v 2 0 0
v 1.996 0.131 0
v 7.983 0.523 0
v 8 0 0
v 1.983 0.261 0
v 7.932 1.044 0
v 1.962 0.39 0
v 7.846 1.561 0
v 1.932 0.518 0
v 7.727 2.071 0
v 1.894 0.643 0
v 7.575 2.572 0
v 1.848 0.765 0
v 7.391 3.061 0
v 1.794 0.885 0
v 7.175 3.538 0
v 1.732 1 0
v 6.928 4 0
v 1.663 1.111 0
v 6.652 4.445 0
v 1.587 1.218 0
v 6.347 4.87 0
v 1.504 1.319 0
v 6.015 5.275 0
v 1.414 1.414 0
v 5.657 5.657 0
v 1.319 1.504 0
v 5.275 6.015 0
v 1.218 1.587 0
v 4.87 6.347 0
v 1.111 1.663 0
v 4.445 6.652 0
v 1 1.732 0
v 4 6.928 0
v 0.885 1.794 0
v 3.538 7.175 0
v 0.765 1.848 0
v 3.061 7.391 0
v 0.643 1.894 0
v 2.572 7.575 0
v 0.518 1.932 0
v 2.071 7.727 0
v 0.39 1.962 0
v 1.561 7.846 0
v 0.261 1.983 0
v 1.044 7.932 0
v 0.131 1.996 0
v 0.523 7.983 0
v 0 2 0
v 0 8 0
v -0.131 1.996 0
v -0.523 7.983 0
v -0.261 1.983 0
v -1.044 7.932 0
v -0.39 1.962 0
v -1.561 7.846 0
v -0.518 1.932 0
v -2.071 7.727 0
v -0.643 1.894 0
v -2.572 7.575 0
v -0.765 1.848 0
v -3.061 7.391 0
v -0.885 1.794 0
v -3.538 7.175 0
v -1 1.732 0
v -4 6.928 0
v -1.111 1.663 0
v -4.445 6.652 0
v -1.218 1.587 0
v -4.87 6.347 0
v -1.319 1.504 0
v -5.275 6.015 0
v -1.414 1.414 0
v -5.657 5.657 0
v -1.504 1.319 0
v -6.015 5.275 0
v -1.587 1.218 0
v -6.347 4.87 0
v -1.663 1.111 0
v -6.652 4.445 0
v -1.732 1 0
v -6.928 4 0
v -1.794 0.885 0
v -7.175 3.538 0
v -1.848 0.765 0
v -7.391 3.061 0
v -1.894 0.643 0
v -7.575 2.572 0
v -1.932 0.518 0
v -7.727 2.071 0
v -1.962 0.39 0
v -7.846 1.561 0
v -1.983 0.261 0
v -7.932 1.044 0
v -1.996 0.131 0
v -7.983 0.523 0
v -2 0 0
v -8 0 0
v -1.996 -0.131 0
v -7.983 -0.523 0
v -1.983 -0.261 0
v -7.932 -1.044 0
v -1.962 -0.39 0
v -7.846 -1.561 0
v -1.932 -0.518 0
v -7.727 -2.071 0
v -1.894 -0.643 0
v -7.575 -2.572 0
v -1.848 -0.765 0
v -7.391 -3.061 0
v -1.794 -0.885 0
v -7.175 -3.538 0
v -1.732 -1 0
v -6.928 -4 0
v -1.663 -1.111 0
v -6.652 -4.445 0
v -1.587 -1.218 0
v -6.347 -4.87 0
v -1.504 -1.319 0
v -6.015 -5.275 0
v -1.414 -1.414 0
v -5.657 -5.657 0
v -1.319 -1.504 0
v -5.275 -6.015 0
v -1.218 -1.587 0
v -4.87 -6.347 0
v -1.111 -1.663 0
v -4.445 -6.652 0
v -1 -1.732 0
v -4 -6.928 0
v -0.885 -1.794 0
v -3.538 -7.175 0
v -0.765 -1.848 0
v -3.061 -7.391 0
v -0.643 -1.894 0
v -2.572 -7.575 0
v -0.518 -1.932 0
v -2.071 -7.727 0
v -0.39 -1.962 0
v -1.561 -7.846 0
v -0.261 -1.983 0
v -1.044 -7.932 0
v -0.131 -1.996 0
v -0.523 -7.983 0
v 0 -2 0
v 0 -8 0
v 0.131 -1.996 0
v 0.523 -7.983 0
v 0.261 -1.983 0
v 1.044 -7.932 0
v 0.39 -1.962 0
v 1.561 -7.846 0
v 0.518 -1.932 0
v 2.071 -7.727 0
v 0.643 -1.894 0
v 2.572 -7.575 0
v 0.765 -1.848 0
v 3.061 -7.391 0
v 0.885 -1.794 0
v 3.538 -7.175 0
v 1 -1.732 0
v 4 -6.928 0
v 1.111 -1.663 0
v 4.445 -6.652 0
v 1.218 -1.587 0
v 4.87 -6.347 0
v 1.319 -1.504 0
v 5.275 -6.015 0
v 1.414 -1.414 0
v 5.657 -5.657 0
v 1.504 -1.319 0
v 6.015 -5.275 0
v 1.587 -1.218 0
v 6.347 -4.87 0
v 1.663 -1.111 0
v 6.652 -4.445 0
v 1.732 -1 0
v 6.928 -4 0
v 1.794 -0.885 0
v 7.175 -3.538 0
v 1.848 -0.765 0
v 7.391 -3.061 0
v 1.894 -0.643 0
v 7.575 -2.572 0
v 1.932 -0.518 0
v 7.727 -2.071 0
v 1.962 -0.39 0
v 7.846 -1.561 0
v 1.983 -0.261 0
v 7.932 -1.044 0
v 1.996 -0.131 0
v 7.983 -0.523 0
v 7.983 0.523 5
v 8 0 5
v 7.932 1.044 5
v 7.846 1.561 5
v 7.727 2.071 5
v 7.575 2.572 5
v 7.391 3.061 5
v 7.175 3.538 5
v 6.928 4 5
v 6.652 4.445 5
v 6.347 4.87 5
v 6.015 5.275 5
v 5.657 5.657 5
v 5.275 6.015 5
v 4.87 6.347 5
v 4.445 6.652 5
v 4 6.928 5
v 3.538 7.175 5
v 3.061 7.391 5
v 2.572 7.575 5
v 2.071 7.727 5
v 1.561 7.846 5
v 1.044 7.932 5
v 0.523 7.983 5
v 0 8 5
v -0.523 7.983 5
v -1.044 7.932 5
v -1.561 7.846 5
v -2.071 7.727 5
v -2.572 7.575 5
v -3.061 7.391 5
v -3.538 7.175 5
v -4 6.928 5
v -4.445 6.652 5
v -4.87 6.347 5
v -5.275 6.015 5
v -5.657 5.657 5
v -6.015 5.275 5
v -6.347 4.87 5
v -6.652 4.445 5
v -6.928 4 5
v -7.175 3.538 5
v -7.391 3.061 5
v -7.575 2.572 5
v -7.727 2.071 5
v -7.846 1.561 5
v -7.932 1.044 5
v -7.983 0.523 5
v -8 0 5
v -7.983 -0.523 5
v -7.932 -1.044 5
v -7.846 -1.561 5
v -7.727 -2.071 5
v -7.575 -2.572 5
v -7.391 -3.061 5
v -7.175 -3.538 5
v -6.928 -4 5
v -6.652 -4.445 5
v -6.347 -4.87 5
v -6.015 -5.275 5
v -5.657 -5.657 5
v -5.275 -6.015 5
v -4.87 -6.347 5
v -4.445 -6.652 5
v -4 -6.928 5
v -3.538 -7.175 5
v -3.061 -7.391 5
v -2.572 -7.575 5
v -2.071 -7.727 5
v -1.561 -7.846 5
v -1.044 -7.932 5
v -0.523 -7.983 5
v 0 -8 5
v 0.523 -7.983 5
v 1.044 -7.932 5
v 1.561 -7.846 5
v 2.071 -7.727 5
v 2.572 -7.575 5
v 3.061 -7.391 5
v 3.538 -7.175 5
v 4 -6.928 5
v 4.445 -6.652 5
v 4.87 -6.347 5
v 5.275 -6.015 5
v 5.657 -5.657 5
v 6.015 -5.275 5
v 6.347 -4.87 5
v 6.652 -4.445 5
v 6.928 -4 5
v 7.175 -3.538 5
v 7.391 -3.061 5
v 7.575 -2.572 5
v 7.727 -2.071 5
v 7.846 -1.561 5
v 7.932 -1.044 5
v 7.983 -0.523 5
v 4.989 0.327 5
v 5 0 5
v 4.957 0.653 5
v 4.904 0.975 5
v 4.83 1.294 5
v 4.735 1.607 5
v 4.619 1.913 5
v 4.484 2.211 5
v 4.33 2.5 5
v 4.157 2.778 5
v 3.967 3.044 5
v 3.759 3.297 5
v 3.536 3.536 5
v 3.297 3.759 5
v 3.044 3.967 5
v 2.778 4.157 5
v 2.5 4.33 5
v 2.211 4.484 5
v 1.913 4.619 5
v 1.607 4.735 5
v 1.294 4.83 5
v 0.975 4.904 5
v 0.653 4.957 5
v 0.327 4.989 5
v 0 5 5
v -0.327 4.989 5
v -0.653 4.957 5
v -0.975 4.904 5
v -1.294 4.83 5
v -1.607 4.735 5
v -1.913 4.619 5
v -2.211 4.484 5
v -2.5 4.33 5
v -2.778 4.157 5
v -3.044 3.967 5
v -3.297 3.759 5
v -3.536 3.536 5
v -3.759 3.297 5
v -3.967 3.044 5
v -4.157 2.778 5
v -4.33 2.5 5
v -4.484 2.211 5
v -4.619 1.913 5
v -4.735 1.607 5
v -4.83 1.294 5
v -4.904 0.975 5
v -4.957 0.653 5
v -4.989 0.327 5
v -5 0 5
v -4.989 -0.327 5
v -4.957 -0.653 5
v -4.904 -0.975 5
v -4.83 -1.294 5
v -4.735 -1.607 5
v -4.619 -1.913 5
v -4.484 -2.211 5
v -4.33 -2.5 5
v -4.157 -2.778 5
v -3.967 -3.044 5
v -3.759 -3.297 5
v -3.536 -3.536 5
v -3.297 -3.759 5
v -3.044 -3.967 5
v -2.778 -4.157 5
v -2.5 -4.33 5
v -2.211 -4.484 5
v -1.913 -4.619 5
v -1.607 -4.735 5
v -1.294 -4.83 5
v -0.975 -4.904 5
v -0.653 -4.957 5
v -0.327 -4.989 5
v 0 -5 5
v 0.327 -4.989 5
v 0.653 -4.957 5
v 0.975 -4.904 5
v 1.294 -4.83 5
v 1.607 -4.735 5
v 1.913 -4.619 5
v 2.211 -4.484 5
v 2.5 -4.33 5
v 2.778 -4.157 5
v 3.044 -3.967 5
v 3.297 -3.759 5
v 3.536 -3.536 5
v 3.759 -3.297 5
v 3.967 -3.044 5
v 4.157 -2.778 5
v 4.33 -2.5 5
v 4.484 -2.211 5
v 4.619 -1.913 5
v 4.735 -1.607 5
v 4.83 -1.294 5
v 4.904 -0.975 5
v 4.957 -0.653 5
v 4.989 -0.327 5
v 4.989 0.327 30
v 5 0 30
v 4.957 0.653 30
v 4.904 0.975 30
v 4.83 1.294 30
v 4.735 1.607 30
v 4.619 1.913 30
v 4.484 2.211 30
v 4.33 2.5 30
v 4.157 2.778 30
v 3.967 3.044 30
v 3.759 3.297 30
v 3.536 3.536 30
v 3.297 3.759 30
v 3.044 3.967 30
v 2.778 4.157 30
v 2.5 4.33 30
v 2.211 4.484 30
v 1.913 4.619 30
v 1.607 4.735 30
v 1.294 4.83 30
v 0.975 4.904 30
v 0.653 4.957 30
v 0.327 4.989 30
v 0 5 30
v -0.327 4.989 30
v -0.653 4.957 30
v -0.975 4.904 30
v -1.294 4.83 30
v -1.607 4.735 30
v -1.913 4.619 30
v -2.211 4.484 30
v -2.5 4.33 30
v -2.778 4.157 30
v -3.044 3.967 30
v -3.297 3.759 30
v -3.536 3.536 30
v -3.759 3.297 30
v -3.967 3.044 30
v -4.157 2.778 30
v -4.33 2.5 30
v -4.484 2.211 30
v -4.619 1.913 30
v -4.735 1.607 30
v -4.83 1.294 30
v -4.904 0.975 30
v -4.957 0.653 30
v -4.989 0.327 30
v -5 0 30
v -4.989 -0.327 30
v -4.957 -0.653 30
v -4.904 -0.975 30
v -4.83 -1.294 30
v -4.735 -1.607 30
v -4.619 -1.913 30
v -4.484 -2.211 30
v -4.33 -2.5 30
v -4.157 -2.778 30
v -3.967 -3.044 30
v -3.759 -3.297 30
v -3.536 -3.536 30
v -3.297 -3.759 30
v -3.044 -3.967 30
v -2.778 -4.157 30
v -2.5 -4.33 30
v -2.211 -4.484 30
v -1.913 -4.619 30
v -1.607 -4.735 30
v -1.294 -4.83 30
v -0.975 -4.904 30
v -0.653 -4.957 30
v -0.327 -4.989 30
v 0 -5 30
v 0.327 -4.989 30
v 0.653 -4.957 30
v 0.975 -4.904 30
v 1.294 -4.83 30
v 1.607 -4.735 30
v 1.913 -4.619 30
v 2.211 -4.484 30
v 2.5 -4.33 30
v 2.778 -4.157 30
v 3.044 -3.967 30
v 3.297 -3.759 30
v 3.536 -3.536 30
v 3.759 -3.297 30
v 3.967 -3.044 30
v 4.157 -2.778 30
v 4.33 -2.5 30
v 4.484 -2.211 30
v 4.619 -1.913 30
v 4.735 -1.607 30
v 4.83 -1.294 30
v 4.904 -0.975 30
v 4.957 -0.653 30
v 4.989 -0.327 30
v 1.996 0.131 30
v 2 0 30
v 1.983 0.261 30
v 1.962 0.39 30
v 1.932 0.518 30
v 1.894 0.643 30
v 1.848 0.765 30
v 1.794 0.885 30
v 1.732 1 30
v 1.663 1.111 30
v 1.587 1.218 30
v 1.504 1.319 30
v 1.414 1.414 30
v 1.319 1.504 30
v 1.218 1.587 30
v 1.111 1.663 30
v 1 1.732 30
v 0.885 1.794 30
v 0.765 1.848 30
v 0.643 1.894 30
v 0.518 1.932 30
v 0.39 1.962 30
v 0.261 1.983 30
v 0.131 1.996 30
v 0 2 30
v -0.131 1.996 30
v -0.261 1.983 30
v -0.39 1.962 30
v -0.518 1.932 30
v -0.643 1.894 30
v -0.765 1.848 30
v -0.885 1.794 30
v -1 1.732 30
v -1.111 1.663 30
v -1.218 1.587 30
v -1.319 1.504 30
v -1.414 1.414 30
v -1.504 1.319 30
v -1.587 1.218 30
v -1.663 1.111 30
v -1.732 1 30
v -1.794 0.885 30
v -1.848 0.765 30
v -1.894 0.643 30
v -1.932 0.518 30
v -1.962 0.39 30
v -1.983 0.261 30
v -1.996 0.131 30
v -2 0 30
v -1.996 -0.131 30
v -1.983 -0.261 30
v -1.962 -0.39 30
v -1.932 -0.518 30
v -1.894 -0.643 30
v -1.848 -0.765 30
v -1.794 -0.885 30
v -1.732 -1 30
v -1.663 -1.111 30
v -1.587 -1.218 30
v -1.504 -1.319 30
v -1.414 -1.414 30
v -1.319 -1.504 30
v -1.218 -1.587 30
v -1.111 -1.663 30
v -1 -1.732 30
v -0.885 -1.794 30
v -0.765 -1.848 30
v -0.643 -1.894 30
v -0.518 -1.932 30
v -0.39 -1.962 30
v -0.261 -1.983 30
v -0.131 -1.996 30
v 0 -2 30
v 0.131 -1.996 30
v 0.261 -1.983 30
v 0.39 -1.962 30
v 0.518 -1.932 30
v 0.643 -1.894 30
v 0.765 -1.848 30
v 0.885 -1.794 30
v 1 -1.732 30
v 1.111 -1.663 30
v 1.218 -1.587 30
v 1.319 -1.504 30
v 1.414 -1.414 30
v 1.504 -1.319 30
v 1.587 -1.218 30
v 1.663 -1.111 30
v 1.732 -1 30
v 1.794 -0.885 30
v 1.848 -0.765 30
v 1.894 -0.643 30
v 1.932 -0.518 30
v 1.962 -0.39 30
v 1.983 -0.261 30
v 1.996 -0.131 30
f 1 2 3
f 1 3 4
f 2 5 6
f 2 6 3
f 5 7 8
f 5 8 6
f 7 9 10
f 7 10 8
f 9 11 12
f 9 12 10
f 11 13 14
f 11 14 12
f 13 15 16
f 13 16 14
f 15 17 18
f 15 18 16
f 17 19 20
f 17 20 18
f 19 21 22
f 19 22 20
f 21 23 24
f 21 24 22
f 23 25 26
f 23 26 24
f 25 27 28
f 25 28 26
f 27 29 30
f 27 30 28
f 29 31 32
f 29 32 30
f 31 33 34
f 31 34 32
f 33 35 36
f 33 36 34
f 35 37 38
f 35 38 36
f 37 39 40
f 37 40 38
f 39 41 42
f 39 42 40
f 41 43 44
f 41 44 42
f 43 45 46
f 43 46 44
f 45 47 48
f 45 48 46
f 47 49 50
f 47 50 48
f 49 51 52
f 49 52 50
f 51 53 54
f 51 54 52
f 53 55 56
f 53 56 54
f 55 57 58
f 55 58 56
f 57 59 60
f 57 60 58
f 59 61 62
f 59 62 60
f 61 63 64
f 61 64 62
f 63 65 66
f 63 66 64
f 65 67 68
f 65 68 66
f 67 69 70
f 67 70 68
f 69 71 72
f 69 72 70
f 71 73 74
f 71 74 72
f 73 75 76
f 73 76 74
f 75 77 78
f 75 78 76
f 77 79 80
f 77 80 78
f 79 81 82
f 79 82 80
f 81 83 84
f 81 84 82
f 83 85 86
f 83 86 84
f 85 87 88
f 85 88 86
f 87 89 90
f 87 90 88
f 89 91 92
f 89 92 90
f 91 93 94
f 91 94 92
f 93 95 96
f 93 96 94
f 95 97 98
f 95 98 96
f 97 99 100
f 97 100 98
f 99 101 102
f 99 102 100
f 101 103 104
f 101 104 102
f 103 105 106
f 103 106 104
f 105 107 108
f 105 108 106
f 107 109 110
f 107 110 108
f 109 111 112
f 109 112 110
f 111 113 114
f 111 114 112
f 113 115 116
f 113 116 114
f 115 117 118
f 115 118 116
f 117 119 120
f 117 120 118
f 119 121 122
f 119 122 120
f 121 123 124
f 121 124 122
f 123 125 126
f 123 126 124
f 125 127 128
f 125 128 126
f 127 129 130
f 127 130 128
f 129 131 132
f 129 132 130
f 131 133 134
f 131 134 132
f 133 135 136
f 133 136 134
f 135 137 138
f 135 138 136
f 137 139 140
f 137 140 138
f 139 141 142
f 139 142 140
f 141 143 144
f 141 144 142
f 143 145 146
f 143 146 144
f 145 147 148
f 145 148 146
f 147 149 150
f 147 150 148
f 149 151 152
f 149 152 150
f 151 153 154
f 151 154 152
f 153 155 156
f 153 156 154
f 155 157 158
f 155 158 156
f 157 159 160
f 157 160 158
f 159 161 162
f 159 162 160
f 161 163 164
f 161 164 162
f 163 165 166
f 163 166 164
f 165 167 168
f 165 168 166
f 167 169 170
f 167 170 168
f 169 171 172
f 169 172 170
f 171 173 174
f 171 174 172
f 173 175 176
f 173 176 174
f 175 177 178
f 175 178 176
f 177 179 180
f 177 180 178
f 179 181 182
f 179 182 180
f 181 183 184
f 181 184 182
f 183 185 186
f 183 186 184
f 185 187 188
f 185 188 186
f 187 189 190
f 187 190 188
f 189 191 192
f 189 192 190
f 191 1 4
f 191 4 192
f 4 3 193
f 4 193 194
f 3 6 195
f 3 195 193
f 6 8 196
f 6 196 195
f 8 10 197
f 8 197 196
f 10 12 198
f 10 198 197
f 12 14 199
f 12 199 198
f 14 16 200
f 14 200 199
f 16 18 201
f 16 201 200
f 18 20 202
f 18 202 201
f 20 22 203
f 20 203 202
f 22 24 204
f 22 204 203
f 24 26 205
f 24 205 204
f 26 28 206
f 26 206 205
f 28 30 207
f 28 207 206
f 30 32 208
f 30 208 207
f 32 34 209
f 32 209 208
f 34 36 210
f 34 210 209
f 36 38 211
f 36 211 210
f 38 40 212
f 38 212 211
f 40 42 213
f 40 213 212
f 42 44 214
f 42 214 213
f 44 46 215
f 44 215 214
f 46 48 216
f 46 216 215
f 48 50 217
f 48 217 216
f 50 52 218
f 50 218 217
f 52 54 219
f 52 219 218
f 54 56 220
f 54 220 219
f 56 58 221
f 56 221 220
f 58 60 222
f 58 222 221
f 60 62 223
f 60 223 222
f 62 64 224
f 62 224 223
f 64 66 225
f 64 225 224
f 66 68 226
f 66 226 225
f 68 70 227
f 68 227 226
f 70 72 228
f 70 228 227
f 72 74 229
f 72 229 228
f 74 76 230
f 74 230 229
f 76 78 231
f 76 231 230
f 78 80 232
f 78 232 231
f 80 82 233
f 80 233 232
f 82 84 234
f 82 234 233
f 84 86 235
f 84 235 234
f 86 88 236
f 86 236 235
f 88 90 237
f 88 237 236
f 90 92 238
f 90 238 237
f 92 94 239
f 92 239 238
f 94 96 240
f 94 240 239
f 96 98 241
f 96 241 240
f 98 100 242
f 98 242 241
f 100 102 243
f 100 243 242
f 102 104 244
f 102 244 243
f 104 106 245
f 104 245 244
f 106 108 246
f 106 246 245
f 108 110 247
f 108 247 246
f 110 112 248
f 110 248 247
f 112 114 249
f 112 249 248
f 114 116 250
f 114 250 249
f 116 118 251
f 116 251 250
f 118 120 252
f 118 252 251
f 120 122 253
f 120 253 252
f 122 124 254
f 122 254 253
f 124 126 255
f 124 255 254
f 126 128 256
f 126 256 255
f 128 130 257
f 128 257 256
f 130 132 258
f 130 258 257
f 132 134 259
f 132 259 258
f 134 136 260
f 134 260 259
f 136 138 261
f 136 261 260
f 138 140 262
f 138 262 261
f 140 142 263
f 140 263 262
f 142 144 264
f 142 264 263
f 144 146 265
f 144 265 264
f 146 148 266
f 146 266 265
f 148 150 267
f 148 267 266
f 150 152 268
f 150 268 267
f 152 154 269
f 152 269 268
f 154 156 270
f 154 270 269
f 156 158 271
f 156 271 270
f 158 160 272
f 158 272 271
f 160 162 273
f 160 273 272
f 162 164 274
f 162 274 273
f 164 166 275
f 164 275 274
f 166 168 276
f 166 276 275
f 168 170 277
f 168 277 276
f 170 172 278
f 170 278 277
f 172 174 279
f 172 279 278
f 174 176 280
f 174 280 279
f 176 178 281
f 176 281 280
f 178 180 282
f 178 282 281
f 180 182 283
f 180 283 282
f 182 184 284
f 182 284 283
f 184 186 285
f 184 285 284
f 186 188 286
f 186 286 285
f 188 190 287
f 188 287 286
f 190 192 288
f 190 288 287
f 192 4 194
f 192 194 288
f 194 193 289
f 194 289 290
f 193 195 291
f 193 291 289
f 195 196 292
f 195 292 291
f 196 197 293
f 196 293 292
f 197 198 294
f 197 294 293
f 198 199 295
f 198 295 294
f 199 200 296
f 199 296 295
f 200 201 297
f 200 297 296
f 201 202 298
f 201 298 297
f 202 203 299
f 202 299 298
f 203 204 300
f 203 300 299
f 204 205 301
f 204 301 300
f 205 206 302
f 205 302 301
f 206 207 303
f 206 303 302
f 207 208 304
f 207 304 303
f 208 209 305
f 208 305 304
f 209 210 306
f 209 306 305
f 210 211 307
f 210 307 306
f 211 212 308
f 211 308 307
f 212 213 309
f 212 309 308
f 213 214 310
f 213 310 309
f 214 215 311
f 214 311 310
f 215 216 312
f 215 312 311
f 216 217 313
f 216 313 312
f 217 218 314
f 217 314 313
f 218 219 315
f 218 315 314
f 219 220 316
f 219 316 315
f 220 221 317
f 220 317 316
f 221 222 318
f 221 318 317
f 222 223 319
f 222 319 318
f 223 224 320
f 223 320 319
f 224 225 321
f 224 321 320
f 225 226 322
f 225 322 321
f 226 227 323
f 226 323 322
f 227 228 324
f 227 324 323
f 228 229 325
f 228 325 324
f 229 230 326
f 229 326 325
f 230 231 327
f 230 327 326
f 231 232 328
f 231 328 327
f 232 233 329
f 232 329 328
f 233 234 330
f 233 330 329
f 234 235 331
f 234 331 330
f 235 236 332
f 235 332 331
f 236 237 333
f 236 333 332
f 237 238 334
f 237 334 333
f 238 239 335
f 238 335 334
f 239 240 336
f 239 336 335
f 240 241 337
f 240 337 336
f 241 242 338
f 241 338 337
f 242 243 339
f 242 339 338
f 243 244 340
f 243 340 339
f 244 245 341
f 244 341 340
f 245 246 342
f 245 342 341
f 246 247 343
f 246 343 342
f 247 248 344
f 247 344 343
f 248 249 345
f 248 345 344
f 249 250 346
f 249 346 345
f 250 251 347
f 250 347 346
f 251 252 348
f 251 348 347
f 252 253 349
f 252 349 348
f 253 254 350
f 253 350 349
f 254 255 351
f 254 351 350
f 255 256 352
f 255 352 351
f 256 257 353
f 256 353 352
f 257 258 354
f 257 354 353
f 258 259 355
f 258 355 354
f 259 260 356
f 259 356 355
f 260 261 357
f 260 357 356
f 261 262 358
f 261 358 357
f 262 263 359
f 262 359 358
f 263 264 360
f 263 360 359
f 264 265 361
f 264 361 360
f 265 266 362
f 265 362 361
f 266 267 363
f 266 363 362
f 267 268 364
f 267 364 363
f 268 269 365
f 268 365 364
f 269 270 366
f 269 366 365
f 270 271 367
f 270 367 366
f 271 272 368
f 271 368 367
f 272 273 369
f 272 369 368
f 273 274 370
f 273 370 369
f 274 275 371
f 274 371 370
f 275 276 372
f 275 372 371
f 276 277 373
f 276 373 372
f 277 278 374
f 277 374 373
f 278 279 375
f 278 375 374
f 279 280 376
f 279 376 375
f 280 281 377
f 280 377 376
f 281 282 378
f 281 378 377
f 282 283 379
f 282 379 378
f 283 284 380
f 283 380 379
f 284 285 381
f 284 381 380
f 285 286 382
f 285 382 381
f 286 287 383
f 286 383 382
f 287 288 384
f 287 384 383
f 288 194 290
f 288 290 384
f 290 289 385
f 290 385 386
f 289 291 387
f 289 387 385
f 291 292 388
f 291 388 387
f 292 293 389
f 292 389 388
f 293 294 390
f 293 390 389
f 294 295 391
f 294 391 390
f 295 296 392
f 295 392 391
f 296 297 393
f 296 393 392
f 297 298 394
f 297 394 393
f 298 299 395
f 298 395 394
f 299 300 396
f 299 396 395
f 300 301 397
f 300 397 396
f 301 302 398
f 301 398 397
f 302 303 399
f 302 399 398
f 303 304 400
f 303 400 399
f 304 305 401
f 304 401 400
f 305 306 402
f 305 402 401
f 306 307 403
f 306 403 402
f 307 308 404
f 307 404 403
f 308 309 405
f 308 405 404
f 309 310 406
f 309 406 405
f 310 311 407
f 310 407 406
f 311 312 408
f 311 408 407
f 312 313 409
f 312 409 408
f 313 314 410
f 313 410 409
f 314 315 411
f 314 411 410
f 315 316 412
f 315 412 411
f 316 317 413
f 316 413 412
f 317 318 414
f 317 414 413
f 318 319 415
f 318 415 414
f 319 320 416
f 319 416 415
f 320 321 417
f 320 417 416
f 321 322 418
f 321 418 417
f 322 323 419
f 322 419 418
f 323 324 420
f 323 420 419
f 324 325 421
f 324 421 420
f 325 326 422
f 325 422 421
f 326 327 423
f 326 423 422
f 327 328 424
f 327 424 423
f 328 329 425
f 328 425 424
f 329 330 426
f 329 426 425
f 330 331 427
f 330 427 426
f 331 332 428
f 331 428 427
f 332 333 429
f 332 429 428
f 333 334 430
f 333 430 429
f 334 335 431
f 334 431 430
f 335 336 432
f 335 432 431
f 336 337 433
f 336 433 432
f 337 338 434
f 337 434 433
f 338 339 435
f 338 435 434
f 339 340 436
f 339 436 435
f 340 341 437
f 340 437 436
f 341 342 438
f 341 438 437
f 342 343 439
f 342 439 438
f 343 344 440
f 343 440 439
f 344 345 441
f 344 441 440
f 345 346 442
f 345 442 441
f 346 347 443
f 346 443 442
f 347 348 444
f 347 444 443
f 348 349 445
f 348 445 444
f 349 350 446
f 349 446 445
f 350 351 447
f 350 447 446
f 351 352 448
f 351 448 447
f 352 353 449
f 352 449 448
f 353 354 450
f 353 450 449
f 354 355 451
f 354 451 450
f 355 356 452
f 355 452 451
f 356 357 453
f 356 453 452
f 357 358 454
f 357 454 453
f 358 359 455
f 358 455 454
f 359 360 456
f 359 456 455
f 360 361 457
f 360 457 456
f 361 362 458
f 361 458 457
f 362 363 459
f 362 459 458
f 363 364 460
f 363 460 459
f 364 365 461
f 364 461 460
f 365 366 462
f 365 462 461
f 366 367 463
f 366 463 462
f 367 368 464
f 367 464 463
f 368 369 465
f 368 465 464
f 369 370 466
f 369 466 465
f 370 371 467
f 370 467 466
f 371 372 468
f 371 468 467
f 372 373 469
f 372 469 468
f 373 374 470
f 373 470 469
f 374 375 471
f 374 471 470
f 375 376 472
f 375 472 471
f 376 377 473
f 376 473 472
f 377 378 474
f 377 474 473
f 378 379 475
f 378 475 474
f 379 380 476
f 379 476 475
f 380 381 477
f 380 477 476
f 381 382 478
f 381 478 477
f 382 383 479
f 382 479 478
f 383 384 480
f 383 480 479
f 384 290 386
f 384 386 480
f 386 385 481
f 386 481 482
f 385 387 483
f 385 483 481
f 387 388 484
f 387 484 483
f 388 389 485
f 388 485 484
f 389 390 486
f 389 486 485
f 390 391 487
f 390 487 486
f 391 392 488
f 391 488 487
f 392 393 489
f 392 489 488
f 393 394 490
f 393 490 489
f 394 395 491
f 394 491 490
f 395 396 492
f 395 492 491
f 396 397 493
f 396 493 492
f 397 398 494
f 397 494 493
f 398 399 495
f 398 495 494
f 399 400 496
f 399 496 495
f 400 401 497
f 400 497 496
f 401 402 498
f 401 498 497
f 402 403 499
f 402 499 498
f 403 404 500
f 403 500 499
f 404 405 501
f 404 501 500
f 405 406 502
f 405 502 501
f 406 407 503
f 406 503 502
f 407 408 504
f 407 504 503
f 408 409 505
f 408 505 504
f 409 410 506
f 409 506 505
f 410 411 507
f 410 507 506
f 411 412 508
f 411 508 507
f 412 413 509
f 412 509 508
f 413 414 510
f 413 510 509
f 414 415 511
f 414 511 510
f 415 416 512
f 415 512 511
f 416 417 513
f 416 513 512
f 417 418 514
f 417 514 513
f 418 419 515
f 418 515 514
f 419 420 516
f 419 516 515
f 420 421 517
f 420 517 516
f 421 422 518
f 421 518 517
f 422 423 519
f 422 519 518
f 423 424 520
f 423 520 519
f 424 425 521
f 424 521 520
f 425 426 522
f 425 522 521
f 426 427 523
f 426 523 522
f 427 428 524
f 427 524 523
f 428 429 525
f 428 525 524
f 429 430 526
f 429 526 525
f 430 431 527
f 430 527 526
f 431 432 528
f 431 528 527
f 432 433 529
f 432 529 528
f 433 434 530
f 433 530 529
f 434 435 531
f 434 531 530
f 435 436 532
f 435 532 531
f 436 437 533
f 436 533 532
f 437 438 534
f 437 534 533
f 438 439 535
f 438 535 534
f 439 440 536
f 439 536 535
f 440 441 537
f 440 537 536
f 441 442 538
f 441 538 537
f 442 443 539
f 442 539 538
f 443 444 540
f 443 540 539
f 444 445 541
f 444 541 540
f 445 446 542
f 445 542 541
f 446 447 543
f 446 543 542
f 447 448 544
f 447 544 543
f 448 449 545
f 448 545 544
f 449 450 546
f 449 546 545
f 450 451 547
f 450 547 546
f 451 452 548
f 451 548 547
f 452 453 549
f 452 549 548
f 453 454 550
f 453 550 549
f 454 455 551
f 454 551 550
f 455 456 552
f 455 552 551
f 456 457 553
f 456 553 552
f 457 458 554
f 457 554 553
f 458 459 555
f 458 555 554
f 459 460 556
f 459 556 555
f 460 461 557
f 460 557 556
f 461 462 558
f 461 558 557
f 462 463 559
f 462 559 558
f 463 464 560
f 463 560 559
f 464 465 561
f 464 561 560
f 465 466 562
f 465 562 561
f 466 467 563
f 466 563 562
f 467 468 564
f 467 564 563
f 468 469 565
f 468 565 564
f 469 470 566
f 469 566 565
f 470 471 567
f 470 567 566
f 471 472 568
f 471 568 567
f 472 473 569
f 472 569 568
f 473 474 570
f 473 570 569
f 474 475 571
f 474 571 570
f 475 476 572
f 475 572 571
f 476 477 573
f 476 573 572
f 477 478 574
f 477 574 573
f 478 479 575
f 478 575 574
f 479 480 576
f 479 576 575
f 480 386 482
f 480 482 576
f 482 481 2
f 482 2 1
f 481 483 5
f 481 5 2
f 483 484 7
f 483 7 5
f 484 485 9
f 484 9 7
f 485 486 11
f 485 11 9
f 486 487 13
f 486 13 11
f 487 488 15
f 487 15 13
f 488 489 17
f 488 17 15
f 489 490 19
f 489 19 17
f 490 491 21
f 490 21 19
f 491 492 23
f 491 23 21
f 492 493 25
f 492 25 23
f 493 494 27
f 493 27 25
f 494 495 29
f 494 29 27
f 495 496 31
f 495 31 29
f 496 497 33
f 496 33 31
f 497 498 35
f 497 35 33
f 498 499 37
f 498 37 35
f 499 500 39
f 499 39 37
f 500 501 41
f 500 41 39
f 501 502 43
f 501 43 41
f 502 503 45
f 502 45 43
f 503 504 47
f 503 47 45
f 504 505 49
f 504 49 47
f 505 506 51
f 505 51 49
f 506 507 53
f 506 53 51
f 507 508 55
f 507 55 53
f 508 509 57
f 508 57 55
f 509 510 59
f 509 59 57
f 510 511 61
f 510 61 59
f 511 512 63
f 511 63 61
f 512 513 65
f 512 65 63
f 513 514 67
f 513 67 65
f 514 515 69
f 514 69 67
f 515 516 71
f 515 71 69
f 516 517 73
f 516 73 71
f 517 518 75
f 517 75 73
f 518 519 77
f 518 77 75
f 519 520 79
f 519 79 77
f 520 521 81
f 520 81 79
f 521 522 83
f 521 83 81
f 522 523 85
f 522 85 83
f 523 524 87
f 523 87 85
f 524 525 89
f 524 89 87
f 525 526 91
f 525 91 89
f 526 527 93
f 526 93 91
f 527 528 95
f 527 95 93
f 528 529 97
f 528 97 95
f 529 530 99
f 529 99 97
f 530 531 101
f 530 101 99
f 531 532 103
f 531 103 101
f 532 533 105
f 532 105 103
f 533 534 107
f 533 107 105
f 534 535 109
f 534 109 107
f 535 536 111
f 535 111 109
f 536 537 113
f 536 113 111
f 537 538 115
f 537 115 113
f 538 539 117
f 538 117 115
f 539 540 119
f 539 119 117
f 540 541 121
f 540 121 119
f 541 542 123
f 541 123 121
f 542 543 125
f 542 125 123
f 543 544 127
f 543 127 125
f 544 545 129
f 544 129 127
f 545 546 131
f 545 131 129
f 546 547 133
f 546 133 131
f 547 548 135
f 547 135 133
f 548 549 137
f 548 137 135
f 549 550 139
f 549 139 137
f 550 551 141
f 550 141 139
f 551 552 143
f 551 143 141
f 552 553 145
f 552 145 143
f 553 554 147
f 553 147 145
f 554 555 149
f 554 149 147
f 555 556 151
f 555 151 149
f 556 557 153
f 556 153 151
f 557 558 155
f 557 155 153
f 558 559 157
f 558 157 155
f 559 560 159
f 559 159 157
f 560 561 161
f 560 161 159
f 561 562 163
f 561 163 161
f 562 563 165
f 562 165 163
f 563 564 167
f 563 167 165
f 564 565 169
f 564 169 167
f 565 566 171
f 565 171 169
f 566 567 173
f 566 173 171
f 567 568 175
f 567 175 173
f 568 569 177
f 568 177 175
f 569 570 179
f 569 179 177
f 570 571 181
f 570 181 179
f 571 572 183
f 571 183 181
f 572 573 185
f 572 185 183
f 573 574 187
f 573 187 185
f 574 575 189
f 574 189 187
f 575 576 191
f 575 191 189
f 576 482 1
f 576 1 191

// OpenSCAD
// Original MechIntel educational model. CC0-1.0. Units: mm.
// Not a standardized or load-rated component.
$fn=96;
// Section points: [radius, height], mm. Edit to change the profile.
section=[[2, 0], [8, 0], [8, 5], [5, 5], [5, 30], [2, 30]];
rotate_extrude($fn=96) polygon(points=section);
